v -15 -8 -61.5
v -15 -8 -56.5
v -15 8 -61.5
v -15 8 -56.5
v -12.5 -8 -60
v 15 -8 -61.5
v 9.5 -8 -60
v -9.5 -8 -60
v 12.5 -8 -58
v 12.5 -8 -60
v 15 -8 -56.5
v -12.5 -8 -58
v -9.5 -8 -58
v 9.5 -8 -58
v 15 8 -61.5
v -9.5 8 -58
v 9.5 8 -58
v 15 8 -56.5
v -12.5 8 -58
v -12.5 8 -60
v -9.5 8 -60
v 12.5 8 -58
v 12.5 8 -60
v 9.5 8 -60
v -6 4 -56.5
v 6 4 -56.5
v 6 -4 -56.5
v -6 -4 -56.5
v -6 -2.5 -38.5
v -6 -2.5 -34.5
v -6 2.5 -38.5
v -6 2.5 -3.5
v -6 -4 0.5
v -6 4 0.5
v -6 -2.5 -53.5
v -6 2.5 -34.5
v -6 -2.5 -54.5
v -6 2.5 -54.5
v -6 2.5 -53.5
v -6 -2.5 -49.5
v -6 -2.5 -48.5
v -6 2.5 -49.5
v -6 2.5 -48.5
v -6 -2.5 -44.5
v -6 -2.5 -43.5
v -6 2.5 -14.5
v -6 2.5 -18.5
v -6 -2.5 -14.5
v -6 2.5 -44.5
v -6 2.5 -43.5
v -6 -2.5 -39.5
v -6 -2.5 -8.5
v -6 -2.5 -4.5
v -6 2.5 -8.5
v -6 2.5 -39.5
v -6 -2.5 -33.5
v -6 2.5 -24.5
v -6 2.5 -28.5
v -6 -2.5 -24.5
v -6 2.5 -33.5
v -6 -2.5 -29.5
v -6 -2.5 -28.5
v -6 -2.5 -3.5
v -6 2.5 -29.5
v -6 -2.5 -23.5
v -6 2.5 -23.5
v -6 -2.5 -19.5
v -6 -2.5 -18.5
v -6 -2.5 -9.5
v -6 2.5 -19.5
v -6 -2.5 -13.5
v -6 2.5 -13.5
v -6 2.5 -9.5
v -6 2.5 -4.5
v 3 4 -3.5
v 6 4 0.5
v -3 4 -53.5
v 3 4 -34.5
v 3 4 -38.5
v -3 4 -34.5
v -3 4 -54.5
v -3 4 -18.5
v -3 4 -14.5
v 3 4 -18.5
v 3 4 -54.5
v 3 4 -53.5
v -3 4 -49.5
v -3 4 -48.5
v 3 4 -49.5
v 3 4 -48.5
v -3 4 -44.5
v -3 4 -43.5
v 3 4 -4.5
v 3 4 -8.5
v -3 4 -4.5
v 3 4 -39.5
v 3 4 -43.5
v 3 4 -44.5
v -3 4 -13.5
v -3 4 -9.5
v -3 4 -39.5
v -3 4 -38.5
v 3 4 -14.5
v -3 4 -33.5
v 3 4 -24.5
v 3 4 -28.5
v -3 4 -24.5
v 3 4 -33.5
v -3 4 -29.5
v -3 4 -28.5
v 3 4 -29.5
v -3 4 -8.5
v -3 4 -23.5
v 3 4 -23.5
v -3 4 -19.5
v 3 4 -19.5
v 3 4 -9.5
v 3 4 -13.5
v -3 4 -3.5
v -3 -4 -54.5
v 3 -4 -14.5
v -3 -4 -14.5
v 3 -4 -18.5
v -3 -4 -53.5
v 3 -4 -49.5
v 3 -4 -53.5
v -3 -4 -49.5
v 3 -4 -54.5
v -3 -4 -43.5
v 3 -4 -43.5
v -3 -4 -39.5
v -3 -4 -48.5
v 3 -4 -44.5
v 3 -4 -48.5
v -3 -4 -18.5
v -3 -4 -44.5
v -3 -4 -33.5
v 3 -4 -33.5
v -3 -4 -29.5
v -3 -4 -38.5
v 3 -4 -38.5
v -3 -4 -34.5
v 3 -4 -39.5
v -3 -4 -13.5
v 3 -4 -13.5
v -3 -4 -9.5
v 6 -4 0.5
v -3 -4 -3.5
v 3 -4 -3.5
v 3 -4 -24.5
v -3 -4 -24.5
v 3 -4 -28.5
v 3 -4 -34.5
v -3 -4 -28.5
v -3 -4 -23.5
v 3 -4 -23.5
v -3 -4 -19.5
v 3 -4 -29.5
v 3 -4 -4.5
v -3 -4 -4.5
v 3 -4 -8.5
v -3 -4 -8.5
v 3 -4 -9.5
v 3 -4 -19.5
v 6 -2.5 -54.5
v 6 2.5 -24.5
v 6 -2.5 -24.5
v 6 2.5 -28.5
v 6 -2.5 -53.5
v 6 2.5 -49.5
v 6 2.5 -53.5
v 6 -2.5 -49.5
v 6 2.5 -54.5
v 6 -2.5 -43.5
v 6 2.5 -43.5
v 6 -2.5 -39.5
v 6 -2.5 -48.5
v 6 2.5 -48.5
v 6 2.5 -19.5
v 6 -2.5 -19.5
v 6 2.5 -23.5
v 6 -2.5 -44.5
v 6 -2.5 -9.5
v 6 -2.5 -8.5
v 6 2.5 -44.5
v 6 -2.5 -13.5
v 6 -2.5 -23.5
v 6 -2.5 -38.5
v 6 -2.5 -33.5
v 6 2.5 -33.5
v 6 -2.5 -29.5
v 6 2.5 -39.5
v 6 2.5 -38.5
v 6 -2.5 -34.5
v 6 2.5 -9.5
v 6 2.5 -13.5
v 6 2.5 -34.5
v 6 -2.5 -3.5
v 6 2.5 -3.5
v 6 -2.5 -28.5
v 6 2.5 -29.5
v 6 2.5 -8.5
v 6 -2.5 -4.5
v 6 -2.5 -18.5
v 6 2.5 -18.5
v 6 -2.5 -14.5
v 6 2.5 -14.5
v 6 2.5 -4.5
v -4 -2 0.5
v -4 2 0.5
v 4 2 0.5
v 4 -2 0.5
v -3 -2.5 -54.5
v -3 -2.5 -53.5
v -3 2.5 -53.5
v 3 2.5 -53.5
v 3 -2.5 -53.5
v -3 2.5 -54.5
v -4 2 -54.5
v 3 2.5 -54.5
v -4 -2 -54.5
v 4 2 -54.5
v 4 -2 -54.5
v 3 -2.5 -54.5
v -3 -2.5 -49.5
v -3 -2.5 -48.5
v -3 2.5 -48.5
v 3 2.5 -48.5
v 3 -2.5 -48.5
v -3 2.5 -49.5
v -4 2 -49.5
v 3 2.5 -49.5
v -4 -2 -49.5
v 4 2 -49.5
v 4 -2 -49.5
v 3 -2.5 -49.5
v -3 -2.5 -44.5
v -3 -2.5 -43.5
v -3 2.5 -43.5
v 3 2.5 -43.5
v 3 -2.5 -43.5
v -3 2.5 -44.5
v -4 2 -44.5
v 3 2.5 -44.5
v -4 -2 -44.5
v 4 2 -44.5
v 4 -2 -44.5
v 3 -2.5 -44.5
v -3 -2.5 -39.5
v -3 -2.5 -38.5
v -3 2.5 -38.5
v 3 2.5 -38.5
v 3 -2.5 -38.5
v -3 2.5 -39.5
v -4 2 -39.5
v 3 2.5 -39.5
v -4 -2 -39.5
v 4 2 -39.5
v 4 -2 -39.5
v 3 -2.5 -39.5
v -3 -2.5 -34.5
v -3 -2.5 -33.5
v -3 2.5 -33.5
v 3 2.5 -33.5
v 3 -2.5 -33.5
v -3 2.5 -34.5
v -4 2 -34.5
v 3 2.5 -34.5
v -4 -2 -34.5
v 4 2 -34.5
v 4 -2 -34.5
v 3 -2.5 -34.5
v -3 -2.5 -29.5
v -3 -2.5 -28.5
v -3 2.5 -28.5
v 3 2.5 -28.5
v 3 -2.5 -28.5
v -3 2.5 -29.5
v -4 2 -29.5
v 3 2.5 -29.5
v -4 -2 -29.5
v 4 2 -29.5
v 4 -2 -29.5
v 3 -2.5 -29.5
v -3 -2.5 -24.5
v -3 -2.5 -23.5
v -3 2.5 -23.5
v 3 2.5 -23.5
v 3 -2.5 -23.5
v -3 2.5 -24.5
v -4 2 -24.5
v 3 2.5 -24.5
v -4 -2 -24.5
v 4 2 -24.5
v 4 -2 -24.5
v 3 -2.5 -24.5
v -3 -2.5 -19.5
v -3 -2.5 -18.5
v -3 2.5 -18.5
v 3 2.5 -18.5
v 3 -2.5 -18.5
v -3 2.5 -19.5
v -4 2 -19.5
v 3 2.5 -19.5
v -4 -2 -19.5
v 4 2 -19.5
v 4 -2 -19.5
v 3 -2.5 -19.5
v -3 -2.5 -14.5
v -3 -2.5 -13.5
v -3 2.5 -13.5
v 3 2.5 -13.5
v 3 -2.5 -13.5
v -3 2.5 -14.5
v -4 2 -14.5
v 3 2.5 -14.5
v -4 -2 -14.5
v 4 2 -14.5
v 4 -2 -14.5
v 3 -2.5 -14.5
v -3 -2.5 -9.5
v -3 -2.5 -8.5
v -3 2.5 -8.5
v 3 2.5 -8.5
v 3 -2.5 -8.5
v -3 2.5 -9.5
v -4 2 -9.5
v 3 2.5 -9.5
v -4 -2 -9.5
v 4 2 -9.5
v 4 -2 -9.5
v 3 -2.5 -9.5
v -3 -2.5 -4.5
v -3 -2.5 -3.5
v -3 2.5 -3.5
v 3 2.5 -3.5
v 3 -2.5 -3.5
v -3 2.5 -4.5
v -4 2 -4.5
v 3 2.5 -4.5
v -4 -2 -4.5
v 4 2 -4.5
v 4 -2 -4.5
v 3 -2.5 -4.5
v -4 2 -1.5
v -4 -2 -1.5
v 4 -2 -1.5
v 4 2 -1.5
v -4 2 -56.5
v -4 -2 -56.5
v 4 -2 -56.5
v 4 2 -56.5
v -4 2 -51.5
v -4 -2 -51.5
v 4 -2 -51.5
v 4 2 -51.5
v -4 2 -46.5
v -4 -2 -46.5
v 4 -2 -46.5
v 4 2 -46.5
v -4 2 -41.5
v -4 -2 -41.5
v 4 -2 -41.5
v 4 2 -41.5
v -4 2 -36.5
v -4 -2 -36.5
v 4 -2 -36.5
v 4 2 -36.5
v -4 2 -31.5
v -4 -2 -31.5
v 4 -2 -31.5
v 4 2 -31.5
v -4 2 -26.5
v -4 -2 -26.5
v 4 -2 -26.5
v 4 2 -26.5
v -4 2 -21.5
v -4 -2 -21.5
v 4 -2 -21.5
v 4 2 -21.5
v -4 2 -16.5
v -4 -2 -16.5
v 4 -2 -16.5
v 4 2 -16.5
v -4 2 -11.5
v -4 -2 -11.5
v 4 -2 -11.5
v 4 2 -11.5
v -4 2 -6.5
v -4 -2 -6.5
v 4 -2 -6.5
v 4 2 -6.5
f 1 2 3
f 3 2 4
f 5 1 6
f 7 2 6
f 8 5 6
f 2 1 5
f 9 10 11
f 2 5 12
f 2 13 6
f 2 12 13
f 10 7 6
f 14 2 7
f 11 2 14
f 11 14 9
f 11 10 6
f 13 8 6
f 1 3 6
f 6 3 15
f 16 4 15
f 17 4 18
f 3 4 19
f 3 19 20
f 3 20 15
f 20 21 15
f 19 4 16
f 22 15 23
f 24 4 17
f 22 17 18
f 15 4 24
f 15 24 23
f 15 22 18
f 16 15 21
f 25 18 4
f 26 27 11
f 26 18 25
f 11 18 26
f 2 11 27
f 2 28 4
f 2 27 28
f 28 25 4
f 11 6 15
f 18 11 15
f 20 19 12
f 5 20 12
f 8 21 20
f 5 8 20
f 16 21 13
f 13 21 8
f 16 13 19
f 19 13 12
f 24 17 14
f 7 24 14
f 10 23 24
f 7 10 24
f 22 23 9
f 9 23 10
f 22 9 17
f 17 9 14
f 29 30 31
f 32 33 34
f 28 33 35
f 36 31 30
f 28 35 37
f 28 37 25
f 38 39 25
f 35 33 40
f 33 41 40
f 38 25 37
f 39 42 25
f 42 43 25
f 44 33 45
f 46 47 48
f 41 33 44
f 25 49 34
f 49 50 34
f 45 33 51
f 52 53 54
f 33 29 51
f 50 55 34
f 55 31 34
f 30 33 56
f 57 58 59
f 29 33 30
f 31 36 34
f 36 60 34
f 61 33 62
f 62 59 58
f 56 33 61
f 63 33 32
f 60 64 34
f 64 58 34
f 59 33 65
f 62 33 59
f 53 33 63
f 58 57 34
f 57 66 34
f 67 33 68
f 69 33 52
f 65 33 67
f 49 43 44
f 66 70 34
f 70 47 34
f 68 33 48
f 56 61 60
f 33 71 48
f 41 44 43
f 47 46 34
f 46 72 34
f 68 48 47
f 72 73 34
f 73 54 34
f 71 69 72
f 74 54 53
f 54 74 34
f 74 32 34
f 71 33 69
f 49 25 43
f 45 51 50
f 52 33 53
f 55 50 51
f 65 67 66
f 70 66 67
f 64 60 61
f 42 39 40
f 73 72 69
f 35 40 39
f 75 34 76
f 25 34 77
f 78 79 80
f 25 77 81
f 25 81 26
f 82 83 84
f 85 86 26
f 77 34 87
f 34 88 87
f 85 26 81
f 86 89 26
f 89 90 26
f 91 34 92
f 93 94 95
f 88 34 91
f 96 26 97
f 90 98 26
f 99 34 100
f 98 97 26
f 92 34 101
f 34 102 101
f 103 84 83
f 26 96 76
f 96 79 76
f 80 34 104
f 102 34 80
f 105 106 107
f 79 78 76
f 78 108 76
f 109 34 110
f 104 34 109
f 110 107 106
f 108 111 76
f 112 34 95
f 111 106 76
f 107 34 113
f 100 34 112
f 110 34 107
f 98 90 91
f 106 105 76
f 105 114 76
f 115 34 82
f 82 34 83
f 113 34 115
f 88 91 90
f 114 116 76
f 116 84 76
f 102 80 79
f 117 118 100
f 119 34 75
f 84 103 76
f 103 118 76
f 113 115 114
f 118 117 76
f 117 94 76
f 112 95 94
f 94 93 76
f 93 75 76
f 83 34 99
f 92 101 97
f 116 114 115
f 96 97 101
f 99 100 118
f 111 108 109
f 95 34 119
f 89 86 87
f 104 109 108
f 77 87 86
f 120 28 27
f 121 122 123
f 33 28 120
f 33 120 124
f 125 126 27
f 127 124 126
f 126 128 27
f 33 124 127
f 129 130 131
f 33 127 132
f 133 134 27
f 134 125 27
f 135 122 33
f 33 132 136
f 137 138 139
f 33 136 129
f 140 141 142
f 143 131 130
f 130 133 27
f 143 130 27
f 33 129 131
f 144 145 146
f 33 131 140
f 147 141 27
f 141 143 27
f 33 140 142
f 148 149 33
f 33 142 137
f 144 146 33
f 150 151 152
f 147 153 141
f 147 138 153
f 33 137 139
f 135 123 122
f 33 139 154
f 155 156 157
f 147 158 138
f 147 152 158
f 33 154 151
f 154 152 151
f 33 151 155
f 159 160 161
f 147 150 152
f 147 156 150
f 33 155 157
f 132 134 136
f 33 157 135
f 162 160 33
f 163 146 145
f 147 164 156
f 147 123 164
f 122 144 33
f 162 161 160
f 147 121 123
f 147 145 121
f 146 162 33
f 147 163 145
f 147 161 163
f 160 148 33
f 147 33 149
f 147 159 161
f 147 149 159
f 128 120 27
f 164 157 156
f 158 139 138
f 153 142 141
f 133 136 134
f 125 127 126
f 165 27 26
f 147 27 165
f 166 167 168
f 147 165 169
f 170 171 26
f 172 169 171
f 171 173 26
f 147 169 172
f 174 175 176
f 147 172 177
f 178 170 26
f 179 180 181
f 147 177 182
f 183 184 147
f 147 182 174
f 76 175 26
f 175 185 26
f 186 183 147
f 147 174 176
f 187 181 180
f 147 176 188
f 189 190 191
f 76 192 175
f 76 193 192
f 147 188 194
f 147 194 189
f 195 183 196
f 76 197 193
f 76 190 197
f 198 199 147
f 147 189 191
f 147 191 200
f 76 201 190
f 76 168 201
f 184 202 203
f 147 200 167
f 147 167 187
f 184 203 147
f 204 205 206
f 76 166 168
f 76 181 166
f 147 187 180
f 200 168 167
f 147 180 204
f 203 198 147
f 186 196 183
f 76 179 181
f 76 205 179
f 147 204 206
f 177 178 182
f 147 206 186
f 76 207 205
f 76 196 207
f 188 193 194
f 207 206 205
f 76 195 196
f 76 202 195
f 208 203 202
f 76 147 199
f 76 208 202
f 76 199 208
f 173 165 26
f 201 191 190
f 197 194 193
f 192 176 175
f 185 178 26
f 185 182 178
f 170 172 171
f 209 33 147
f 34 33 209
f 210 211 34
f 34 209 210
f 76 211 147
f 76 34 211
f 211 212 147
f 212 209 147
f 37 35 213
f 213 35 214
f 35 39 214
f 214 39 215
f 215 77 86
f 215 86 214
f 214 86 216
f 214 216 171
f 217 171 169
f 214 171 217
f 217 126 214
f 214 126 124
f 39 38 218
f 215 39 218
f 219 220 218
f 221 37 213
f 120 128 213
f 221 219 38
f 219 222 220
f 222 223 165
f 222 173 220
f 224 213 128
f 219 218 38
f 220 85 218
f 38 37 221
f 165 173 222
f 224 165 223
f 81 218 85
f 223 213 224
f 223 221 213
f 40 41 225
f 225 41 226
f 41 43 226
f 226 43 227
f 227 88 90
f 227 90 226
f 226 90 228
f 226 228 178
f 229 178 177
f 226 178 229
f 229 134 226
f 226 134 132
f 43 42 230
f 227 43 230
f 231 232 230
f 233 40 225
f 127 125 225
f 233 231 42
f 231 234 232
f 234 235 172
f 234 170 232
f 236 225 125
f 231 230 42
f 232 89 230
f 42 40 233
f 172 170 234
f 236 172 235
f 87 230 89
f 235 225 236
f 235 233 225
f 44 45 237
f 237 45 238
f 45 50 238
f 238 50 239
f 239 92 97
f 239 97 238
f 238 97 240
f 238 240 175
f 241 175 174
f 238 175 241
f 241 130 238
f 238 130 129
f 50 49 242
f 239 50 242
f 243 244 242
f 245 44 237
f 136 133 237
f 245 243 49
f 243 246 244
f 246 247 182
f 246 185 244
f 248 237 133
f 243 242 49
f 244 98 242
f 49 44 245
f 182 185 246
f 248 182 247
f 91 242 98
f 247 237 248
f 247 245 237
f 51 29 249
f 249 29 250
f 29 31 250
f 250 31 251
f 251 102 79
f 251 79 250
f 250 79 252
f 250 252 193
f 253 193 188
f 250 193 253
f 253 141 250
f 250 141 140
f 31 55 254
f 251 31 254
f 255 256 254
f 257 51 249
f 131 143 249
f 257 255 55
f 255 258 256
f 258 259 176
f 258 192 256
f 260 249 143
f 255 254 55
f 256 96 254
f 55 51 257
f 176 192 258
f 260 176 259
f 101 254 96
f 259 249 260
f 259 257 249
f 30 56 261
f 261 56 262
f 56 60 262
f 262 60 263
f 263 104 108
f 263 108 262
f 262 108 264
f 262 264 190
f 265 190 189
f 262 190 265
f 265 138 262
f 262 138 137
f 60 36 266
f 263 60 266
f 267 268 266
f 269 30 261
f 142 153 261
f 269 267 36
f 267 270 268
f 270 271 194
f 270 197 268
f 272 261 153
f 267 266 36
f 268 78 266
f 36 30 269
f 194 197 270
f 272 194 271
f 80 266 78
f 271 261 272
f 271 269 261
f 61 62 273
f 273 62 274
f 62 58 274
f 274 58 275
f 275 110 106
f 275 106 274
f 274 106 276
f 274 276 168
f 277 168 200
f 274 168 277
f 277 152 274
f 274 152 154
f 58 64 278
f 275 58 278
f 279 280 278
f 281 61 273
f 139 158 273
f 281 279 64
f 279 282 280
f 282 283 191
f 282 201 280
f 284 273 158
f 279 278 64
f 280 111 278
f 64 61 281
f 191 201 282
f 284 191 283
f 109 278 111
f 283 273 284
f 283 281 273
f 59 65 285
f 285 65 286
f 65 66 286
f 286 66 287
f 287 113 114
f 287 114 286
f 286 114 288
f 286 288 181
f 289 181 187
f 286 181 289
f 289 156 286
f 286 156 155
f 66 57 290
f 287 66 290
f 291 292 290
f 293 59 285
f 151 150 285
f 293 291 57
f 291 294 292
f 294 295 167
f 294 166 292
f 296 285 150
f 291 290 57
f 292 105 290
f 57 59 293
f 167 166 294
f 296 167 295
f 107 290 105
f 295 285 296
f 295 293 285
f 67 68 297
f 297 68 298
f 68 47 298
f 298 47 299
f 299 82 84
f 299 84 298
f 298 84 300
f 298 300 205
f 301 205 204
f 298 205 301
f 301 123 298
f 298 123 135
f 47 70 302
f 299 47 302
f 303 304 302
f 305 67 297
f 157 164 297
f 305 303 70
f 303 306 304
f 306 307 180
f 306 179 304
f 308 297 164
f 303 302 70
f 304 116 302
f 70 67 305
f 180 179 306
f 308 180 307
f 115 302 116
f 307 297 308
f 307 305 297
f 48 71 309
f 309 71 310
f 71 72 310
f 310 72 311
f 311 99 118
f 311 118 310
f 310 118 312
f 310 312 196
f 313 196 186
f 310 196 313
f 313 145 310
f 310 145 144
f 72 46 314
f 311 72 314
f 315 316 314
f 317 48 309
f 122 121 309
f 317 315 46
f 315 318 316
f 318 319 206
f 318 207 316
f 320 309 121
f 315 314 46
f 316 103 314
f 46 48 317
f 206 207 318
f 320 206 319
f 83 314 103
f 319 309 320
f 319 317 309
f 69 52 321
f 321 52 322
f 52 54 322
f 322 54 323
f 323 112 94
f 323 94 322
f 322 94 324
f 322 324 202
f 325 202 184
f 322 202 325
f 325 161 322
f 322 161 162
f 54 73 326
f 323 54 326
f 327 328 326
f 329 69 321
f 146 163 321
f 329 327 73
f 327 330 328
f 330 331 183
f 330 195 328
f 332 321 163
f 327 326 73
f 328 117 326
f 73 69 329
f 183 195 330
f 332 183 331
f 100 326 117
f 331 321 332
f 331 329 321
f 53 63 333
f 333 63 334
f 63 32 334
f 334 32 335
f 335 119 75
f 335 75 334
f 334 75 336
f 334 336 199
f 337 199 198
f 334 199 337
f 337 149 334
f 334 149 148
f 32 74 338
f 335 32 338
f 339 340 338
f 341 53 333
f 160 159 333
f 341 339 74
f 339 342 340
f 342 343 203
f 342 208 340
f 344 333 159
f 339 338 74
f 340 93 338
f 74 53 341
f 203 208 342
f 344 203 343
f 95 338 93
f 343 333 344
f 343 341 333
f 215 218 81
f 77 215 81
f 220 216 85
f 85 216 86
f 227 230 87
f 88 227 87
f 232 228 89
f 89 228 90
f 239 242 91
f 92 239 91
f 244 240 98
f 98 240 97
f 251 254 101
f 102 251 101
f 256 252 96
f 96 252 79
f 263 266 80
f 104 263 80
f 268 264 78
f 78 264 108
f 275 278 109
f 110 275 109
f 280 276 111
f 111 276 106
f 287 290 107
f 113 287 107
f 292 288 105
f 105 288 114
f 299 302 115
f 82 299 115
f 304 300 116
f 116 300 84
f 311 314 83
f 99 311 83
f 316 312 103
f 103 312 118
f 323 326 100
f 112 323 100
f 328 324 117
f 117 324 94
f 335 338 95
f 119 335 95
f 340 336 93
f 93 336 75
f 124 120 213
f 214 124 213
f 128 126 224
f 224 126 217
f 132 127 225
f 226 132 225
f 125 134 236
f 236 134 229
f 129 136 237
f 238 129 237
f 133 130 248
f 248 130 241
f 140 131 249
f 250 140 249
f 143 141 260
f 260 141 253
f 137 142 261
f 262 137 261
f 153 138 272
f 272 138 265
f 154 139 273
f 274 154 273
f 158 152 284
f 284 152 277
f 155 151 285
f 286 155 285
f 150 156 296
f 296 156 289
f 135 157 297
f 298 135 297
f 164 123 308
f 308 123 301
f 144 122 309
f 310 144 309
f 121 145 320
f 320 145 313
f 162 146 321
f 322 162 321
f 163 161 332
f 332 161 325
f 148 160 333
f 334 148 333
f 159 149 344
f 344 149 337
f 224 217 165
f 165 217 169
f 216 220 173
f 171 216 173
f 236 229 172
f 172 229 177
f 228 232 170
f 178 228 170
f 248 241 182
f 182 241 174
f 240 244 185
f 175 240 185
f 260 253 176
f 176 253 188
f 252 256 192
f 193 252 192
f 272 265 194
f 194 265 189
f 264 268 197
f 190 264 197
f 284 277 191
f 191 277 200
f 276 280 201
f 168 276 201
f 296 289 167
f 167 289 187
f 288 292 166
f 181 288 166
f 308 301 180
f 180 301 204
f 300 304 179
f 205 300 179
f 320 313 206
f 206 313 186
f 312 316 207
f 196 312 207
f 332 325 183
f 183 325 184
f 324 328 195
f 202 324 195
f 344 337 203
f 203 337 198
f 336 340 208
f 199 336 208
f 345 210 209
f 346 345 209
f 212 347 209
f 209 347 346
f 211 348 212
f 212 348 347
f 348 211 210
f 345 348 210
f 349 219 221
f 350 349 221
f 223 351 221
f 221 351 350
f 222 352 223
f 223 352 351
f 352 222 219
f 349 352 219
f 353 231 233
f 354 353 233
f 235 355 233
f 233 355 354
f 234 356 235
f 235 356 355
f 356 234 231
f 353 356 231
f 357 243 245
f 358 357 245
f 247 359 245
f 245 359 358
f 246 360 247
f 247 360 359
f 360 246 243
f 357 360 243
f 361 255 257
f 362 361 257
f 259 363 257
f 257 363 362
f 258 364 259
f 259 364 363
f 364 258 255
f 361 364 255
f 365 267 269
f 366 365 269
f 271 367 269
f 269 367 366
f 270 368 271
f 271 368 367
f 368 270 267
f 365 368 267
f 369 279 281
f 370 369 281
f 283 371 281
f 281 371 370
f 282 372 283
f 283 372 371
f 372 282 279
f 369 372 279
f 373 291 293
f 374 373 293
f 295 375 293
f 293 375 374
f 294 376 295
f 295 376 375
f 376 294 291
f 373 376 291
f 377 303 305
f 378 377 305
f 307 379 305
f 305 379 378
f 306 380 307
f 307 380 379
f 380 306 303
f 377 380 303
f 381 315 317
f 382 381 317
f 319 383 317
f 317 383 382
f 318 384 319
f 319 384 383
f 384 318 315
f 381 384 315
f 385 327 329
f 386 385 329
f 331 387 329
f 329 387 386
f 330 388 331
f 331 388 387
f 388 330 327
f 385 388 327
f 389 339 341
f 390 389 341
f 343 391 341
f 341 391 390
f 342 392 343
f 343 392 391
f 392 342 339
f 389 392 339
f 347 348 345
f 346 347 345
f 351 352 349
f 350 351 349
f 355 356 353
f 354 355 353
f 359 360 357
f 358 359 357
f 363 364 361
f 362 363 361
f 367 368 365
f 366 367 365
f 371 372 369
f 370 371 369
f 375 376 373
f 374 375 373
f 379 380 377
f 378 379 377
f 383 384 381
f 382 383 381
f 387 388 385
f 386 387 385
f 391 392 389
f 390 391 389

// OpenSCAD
//  @brief
//      Velo Bling-Bling Magnet Mount
//
//  @file
//      magnet.scad
//  @author
//      Peter Schmid, peter@spyr.ch
//  @date
//      2016-05-27
//  @remark
//      Language: OpenSCAD
//  @version
//      2.1
//  @copyright
//      Peter Schmid, Zurich Switzerland
//
// 		This work (mechanical frame design) is licensed under a Creative Commons
//		Attribution-ShareAlike 4.0 International Public License. To view a copy
//		of this license, visit http://creativecommons.org/licenses/by-sa/4.0/
//		or send a letter to Creative Commons, 171 Second Street, Suite 300,
//		San Francisco, California, 94105, USA.
////////////////////////////////////////////////////////////////////////////////

// $fn=48;

// variables
////////////
magnet_length = 8;
magnet_width = 4;
magnet_thickness = 3;

wanne_length = 12;
wanne_width = 8;
wanne_thickness = 4;

stripe_length = 3;
stripe_width = 1.5;

plate_length = 30;
plate_width = 16;
plate_thickness = 5;


toleranz = 0.2;

// Magnet
	*color( "red" )
		cube([magnet_length, magnet_width, magnet_thickness], center=true);


difference() {
	// Wanne
	translate([0, 0, -magnet_thickness/2])
		cube([wanne_length, wanne_width, wanne_thickness], true);

	// Magnet
	cube([magnet_length, magnet_width, magnet_thickness], true);

}


translate([0, 0, -5])
difference() {
	// Wanne
	translate([0, 0, -magnet_thickness/2])
		cube([wanne_length, wanne_width, wanne_thickness], true);

	// Magnet
	cube([magnet_length, magnet_width, magnet_thickness], true);

}

translate([0, 0, -10])
difference() {
	// Wanne
	translate([0, 0, -magnet_thickness/2])
		cube([wanne_length, wanne_width, wanne_thickness], true);

	// Magnet
	cube([magnet_length, magnet_width, magnet_thickness], true);

}

translate([0, 0, -15])
difference() {
	// Wanne
	translate([0, 0, -magnet_thickness/2])
		cube([wanne_length, wanne_width, wanne_thickness], true);

	// Magnet
	cube([magnet_length, magnet_width, magnet_thickness], true);

}

translate([0, 0, -20])
difference() {
	// Wanne
	translate([0, 0, -magnet_thickness/2])
		cube([wanne_length, wanne_width, wanne_thickness], true);

	// Magnet
	cube([magnet_length, magnet_width, magnet_thickness], true);

}

translate([0, 0, -25])
difference() {
	// Wanne
	translate([0, 0, -magnet_thickness/2])
		cube([wanne_length, wanne_width, wanne_thickness], true);

	// Magnet
	cube([magnet_length, magnet_width, magnet_thickness], true);

}

translate([0, 0, -30])
difference() {
	// Wanne
	translate([0, 0, -magnet_thickness/2])
		cube([wanne_length, wanne_width, wanne_thickness], true);

	// Magnet
	cube([magnet_length, magnet_width, magnet_thickness], true);

}

translate([0, 0, -35])
difference() {
	// Wanne
	translate([0, 0, -magnet_thickness/2])
		cube([wanne_length, wanne_width, wanne_thickness], true);

	// Magnet
	cube([magnet_length, magnet_width, magnet_thickness], true);

}

translate([0, 0, -40])
difference() {
	// Wanne
	translate([0, 0, -magnet_thickness/2])
		cube([wanne_length, wanne_width, wanne_thickness], true);

	// Magnet
	cube([magnet_length, magnet_width, magnet_thickness], true);

}

translate([0, 0, -45])
difference() {
	// Wanne
	translate([0, 0, -magnet_thickness/2])
		cube([wanne_length, wanne_width, wanne_thickness], true);

	// Magnet
	cube([magnet_length, magnet_width, magnet_thickness], true);

}

translate([0, 0, -50])
difference() {
	// Wanne
	translate([0, 0, -magnet_thickness/2])
		cube([wanne_length, wanne_width, wanne_thickness], true);

	// Magnet
	cube([magnet_length, magnet_width, magnet_thickness], true);

}

translate([0, 0, -55])
difference() {
	// Wanne
	translate([0, 0, -magnet_thickness/2])
		cube([wanne_length, wanne_width, wanne_thickness], true);

	// Magnet
	cube([magnet_length, magnet_width, magnet_thickness], true);

}

// Stripe 1
translate([wanne_length/2-stripe_length/2, wanne_width/2-stripe_width/2, -30])
	cube([3, 1.5, 55], true);

// Stripe 2
translate([-wanne_length/2+stripe_length/2, wanne_width/2-stripe_width/2, -30])
	cube([3, 1.5, 55], true);

// Stripe 3
translate([wanne_length/2-stripe_length/2, -wanne_width/2+stripe_width/2, -30])
	cube([3, 1.5, 55], true);

// Stripe 4
translate([-wanne_length/2+stripe_length/2, -wanne_width/2+stripe_width/2, -30])
	cube([3, 1.5, 55], true);

// Montageplatte
translate([0, 0, -59])
difference() {
	cube([plate_length, plate_width, plate_thickness], true);

   translate([-plate_length/2+4, 0, 0])
		cube([3, plate_width+1, 2], true);

   translate([+plate_length/2-4, 0, 0])
		cube([3, plate_width+1, 2], true);


}
